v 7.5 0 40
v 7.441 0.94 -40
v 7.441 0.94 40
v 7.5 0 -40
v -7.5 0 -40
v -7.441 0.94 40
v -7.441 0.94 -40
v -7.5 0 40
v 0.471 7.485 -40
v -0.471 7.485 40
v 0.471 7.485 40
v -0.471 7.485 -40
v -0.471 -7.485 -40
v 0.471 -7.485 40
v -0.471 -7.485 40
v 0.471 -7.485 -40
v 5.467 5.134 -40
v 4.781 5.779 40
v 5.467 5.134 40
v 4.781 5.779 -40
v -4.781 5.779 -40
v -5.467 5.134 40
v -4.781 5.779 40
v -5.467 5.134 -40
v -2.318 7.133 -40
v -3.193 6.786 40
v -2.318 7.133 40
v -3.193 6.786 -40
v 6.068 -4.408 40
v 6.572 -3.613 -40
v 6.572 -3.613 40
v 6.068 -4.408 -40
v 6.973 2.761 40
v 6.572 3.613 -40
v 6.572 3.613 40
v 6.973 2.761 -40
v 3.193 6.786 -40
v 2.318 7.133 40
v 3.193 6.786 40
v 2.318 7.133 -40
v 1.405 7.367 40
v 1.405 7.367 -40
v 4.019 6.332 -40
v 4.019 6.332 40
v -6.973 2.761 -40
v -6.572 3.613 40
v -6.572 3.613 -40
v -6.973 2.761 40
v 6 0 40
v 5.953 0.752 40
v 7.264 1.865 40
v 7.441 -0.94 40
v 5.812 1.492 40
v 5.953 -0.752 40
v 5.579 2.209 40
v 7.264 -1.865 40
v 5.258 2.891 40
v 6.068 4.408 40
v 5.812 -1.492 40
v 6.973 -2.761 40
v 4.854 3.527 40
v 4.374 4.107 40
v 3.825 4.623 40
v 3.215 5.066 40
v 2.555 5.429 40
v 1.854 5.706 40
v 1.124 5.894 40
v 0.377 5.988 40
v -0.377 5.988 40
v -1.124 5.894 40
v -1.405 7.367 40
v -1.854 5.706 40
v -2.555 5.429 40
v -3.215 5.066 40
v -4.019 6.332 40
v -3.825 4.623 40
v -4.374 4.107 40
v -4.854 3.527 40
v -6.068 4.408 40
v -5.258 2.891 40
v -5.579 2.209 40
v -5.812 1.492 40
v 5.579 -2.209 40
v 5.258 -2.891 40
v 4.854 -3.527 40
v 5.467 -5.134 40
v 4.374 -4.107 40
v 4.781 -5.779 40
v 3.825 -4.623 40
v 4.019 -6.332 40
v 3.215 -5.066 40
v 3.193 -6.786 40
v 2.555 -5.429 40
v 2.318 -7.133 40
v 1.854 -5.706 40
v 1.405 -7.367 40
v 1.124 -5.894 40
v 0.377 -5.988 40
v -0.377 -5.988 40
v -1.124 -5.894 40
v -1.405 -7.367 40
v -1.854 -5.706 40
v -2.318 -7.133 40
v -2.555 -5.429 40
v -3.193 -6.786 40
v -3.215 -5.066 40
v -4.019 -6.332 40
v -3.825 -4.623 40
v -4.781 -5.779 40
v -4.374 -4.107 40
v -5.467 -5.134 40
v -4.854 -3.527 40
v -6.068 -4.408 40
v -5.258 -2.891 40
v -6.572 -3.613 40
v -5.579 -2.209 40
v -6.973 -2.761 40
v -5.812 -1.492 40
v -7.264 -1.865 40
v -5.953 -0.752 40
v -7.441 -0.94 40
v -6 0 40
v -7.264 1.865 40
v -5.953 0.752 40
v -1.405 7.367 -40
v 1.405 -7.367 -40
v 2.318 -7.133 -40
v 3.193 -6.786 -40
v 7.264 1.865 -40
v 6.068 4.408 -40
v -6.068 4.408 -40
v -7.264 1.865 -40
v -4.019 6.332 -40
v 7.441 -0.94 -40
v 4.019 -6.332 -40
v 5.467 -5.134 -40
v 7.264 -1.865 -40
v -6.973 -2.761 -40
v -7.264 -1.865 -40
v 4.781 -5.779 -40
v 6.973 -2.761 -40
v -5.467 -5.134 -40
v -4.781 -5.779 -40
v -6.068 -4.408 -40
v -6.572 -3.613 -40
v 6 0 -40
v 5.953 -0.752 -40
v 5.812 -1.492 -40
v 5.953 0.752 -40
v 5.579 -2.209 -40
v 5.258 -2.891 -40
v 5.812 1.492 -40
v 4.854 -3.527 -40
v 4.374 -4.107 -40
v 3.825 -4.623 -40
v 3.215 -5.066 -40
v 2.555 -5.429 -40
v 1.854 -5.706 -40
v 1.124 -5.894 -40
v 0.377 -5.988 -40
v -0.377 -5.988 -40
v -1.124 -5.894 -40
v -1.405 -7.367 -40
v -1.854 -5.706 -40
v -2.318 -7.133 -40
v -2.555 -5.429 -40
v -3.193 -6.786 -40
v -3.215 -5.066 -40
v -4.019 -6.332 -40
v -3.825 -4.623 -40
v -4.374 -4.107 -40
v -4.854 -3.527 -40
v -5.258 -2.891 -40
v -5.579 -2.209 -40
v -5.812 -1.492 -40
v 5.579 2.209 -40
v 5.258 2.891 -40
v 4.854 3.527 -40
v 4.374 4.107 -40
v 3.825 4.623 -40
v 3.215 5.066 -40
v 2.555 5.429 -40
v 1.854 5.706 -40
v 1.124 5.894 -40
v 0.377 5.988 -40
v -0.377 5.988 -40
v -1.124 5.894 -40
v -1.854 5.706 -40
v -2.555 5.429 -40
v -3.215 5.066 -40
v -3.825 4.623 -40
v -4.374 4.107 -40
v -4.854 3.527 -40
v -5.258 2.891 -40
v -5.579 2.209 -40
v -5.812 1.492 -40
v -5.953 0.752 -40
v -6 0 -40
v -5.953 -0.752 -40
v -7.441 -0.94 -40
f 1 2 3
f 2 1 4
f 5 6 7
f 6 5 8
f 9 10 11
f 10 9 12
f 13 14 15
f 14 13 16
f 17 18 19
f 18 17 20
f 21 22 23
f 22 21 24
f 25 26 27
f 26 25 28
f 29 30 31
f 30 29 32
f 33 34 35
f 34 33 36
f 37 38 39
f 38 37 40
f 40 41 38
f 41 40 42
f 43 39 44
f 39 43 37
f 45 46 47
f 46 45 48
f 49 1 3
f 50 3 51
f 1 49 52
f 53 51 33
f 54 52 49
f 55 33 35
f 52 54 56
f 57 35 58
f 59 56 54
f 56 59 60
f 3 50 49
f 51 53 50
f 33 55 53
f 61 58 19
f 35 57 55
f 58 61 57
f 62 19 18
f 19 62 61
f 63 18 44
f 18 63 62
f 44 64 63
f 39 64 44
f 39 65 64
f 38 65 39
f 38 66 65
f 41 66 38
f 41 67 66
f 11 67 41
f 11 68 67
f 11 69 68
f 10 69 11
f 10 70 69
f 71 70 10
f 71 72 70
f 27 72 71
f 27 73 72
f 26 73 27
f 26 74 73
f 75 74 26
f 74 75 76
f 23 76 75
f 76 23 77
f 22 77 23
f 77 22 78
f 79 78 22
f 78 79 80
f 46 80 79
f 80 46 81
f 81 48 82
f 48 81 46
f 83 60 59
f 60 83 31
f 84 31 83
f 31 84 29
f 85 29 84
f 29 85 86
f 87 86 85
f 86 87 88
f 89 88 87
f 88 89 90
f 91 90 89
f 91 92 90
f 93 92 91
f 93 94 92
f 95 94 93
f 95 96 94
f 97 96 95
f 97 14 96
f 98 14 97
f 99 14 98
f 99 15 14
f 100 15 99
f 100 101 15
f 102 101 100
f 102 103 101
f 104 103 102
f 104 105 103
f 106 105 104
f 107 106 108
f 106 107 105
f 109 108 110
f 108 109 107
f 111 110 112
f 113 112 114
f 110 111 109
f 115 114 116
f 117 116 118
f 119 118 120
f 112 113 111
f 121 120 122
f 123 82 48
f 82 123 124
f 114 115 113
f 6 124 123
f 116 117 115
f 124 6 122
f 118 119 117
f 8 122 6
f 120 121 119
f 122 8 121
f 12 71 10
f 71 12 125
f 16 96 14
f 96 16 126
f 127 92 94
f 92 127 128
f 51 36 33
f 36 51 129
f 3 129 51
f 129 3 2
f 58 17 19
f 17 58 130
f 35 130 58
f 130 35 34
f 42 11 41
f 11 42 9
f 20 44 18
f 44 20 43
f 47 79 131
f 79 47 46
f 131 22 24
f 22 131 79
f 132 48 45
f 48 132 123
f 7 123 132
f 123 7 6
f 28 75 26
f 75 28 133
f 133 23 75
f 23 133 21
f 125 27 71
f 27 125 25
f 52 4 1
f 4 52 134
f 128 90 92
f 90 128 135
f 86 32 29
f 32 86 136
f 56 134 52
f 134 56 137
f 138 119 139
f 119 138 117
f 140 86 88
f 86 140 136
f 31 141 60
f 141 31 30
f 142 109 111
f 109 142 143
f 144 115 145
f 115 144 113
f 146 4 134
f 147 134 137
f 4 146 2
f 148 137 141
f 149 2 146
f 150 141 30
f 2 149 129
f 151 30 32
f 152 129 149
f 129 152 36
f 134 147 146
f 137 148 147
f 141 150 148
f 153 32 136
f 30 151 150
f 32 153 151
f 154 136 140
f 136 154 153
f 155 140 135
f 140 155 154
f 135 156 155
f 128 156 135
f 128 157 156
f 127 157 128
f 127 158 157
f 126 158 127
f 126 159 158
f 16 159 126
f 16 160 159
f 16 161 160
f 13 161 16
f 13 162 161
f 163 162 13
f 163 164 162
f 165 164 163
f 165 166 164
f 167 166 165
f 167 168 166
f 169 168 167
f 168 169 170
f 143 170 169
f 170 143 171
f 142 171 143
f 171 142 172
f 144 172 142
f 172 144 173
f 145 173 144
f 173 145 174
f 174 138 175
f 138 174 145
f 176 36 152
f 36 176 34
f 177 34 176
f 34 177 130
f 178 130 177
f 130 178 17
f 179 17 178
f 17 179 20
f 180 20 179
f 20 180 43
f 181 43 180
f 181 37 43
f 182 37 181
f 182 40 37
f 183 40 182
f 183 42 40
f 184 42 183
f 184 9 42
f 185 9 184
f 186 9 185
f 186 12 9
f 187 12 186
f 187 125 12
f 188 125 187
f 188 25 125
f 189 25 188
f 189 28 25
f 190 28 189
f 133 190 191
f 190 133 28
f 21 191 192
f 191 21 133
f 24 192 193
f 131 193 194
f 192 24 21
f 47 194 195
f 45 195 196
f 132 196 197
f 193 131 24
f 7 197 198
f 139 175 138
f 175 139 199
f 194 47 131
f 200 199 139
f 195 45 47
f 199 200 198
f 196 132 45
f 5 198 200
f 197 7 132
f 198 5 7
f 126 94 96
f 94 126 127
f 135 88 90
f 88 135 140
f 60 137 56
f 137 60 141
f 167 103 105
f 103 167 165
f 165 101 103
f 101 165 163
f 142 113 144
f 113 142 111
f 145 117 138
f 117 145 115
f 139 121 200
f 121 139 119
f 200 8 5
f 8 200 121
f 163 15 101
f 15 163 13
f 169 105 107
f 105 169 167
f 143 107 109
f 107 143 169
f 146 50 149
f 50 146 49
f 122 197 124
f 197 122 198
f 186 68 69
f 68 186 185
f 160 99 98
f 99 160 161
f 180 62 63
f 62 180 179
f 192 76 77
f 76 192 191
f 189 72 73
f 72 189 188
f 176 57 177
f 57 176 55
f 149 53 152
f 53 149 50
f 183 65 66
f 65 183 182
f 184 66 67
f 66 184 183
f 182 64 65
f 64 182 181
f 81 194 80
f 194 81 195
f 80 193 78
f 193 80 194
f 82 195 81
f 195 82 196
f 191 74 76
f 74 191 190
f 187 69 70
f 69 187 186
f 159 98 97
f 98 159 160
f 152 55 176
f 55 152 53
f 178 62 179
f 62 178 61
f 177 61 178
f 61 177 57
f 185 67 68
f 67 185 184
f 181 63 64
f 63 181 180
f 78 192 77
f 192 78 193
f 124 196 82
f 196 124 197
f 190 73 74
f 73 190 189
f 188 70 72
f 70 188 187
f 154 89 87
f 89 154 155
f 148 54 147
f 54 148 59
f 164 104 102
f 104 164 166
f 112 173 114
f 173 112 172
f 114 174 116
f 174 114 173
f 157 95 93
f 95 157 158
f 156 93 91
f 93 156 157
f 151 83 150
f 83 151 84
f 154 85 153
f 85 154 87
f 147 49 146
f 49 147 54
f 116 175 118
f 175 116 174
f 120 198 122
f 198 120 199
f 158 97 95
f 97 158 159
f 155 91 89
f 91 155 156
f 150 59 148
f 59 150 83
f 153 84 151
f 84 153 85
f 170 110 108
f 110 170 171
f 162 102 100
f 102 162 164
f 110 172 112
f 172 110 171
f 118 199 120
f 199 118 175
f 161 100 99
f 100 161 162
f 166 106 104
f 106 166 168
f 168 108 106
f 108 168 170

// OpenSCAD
$fn = 50;


difference() {
	union() {
		translate(v = [0, 0, -40.0000000000]) {
			cylinder(h = 80, r = 7.5000000000);
		}
	}
	union() {
		translate(v = [0, 0, -100.0000000000]) {
			cylinder(h = 200, r = 6);
		}
	}
}
